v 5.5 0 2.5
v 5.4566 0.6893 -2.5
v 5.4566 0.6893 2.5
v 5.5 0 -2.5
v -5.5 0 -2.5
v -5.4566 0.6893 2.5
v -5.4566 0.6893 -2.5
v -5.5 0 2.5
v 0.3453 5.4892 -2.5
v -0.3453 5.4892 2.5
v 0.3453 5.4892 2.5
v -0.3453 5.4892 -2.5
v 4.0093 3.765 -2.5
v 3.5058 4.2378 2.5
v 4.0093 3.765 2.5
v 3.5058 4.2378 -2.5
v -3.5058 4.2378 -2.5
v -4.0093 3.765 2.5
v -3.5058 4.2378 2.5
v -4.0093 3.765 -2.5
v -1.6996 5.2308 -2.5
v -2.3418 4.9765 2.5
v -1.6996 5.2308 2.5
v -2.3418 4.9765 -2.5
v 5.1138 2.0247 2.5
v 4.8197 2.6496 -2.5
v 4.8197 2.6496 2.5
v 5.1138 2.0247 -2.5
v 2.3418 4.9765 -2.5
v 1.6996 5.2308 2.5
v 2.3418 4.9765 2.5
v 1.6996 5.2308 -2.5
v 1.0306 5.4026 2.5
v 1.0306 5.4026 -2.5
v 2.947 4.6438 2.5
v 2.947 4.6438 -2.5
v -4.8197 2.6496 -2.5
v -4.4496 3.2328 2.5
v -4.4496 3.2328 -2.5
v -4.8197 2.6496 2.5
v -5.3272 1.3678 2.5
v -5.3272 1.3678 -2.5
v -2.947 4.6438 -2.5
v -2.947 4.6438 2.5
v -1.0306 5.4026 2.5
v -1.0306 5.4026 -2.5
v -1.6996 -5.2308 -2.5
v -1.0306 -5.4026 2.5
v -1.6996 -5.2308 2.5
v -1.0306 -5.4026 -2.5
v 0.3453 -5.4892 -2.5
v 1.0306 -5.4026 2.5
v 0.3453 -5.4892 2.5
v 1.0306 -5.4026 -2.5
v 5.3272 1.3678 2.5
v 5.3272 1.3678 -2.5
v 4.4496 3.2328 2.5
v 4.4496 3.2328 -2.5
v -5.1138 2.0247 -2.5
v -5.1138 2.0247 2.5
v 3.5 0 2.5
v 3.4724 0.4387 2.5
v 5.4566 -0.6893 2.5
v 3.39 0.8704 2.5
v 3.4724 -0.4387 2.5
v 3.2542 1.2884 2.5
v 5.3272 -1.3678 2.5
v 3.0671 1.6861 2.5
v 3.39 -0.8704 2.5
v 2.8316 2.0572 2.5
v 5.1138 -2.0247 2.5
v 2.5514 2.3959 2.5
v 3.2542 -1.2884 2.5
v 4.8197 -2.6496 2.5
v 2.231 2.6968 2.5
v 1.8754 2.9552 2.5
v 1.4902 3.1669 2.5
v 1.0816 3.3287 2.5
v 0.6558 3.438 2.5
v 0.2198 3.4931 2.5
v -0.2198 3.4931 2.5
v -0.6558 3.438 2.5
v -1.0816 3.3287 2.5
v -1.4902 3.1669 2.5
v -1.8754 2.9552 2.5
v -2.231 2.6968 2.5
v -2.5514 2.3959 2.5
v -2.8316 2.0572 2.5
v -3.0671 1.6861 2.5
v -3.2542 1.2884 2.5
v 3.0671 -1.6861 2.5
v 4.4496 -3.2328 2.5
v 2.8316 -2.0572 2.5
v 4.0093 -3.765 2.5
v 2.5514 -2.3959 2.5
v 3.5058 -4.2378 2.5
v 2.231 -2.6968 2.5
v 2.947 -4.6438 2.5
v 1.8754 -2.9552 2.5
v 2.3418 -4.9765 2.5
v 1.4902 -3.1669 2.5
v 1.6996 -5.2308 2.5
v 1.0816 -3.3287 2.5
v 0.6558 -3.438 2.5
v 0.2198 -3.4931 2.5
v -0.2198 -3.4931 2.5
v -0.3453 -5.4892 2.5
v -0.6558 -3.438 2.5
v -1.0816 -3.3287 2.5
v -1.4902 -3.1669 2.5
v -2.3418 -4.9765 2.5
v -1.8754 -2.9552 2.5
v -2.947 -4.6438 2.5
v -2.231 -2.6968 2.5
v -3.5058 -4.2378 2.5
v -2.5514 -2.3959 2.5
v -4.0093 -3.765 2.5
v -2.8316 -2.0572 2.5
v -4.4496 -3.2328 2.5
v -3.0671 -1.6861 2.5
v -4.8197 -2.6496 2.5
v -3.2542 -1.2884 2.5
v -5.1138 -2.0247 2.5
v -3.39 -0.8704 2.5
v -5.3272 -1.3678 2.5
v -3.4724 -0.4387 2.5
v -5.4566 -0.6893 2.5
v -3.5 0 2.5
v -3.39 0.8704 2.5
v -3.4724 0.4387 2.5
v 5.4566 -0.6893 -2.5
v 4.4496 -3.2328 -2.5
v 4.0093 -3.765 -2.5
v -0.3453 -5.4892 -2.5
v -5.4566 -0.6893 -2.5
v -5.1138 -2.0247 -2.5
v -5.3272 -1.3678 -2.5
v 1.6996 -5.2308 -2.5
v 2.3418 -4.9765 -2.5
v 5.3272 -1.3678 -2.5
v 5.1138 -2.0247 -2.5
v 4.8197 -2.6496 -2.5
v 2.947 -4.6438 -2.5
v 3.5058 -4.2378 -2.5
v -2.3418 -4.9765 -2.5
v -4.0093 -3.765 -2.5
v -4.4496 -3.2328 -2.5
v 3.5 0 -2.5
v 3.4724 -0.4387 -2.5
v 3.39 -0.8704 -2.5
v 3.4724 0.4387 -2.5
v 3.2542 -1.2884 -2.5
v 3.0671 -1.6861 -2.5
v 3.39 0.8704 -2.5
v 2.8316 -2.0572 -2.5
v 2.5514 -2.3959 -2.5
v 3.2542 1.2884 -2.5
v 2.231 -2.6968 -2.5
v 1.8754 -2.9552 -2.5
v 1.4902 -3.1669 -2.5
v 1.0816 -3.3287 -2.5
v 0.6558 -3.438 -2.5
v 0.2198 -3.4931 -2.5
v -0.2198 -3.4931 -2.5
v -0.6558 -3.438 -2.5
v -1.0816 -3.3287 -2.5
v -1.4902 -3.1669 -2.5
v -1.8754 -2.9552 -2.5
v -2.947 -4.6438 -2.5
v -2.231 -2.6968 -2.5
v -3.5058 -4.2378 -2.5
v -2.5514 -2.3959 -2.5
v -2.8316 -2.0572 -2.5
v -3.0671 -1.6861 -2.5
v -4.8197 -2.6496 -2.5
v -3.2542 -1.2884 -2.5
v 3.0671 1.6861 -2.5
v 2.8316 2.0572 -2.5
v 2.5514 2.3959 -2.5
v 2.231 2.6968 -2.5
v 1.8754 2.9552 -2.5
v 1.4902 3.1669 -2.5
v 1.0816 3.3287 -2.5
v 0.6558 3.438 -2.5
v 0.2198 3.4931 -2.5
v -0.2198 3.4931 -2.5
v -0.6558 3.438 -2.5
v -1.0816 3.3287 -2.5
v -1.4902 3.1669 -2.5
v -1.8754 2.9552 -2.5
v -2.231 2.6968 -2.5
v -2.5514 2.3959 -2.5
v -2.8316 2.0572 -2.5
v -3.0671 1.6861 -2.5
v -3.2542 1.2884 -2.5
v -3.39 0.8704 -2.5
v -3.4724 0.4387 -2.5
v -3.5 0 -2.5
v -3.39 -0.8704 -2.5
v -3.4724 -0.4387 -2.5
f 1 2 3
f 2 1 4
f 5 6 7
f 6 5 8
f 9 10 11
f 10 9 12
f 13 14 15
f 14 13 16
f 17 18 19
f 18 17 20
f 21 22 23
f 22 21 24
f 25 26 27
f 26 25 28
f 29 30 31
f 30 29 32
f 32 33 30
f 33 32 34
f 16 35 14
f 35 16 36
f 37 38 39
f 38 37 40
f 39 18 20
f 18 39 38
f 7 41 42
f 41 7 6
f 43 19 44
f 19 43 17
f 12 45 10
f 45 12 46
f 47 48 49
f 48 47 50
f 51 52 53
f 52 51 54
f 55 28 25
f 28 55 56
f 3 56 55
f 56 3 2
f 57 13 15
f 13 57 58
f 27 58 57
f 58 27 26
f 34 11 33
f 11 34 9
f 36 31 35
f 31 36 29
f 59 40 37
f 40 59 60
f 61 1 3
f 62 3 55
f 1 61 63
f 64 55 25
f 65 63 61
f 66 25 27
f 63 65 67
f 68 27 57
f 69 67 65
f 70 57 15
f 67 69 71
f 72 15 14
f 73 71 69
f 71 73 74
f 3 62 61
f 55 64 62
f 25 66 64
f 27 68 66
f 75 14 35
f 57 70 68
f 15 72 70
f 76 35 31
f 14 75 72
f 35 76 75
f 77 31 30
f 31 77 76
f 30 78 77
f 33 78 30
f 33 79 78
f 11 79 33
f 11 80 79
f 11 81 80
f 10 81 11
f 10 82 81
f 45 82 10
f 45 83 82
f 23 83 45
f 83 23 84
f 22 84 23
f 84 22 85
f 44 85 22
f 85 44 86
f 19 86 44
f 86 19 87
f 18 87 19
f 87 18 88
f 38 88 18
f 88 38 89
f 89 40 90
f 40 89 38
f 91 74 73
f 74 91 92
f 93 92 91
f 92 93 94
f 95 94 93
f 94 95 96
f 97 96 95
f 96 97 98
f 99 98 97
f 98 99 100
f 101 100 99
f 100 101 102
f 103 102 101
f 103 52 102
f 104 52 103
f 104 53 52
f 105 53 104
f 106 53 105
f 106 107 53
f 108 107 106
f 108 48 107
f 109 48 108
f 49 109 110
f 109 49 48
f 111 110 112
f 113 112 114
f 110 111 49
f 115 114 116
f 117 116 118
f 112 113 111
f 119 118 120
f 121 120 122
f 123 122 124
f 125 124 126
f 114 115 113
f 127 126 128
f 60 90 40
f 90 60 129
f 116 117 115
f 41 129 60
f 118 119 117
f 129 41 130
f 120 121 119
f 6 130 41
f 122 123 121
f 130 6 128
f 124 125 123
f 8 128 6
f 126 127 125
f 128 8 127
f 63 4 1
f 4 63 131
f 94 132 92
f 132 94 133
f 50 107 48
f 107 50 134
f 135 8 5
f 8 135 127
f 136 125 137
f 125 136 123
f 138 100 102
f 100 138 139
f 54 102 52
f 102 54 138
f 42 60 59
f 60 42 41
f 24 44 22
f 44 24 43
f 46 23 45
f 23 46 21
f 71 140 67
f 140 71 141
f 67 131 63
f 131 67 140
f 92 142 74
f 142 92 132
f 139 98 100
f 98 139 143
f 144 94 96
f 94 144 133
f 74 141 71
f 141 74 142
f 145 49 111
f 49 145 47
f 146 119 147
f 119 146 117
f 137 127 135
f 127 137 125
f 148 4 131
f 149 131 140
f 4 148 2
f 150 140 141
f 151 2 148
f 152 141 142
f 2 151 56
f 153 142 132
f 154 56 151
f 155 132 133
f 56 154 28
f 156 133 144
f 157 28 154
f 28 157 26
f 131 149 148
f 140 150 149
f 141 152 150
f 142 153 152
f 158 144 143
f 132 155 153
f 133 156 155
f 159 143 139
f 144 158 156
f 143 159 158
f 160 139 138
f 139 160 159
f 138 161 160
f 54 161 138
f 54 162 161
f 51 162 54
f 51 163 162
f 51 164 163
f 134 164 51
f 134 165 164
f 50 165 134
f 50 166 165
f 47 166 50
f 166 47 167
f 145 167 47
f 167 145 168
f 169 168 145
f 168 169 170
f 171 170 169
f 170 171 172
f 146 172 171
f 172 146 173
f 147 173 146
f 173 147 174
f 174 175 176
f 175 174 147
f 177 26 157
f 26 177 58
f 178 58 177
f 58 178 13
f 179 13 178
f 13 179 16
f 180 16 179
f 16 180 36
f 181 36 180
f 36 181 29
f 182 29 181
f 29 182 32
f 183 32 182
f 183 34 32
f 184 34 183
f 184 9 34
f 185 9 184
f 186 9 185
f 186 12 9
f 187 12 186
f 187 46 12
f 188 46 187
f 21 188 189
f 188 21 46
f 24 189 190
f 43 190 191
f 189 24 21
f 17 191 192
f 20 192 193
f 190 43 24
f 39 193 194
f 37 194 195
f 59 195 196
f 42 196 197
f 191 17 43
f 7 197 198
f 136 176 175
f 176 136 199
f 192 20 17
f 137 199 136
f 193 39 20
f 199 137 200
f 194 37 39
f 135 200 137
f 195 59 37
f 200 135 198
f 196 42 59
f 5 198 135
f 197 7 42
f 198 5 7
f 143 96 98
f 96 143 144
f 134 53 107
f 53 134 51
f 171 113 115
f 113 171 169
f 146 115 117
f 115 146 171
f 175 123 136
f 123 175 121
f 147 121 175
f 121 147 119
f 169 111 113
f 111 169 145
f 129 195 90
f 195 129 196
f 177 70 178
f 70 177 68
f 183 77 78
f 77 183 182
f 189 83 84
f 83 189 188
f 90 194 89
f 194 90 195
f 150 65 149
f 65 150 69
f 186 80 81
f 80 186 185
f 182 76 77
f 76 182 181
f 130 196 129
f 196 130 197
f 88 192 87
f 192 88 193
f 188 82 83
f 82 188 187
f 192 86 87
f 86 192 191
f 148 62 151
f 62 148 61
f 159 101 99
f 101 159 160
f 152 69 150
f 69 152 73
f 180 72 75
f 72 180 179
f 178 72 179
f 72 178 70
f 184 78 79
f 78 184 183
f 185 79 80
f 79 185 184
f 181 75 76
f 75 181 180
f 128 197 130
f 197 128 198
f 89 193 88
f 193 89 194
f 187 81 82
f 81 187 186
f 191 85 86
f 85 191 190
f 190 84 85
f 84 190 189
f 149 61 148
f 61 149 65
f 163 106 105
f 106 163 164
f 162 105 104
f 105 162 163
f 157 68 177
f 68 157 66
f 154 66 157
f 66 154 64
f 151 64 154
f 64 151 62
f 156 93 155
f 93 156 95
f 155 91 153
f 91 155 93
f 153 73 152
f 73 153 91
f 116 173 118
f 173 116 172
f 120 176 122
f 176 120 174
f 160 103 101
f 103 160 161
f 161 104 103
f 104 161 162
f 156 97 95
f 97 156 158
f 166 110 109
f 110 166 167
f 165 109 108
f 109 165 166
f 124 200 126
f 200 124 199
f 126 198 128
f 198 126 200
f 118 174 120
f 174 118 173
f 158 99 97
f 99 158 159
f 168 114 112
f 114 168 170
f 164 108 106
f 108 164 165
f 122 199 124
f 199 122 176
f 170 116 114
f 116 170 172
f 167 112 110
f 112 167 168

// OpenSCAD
$fn = 50;


difference() {
	union() {
		translate(v = [0, 0, -2.5000000000]) {
			cylinder(h = 5, r = 5.5000000000);
		}
	}
	union() {
		translate(v = [0, 0, -100.0000000000]) {
			cylinder(h = 200, r = 3.5000000000);
		}
	}
}
